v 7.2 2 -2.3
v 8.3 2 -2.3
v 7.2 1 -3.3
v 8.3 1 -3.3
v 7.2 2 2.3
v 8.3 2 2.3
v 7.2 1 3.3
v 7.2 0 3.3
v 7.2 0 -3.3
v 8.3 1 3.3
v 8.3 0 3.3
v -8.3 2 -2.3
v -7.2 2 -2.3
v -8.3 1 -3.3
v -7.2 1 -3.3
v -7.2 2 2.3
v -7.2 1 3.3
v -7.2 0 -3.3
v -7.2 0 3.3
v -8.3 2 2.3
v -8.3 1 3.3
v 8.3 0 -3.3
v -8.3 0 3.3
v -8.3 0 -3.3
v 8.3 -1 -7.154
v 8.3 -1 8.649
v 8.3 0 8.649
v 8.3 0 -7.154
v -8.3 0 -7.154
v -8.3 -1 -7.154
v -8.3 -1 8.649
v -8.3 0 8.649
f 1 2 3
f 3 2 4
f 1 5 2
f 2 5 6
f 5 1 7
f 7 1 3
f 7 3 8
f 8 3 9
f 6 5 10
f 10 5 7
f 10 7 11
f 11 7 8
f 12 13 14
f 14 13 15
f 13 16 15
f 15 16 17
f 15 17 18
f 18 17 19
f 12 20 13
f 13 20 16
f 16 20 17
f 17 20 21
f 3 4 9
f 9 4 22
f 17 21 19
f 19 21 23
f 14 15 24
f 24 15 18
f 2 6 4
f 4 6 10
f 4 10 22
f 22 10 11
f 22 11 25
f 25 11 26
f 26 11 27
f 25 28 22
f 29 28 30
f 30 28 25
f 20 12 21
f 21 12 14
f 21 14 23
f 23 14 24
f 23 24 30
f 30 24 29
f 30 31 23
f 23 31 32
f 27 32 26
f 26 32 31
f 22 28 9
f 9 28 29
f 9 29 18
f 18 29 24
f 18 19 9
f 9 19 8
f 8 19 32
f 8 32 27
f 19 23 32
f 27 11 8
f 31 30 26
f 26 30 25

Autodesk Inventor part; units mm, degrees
ref_plane "YZ Plane" through (0, 0, 0) normal (1, 0, 0) x (0, 1, 0)
ref_plane "XZ Plane" through (0, 0, 0) normal (0, 1, 0) x (-1, 0, 0)
ref_plane "XY Plane" through (0, 0, 0) normal (0, 0, 1) x (1, 0, 0)
sketch "Boceto1" plane through (0, 0, 0) normal (0, 1, 0) x (-1, 0, 0)
  line L0 (-7, 3.5) -> (-8.5, 3.5)
  line L1 (-7, -3.5) -> (-7, 3.5)
  line L2 (-8.5, -3.5) -> (-7, -3.5)
  line L3 (-8.5, -3.5) -> (-8.5, -7.3536)
  line L4 (-8.5, -7.3536) -> (8.5, -7.3536)
  line L5 (8.5, -7.3536) -> (8.5, -3.5)
  line L6 (7, -3.5) -> (8.5, -3.5)
  line L7 (7, 3.5) -> (7, -3.5)
  line L8 (8.5, 3.5) -> (7, 3.5)
  line L9 (8.5, 3.5) -> (8.5, 8.8489)
  line L10 (-8.5, 8.8489) -> (8.5, 8.8489)
  line L11 (-8.5, 8.8489) -> (-8.5, 3.5)
  circle A0 centre (0, 0) radius 5.5
  point P0 (-1.5892, 6.097)
  point P1 (-7, 0)
  dimension "d26" = 16.2026
  dimension "d27" = 17
  dimension "d28" = 5.3489
  dimension "d29" = 7
  dimension "d30" = 11
  dimension "d31" = 8.8489
  dimension "d32" = 8.5
  dimension "d34" = 1.5
  dimension "d35" = 1.5
sketch "Boceto2" plane through (0, 0, 0) normal (0, 1, 0) x (-1, 0, 0)
  line L0 (8.5, 3.5) -> (7, 3.5) construction
  line L1 (7, 3.5) -> (7, -3.5) construction
  line L2 (7, -3.5) -> (8.5, -3.5) construction
  line L3 (-7, 3.5) -> (-8.5, 3.5) construction
  line L4 (-7, -3.5) -> (-7, 3.5) construction
  line L5 (-8.5, -3.5) -> (-7, -3.5) construction
  line L6 (-8.5, -3.5) -> (-8.5, -7.3536) construction
  line L7 (-8.5, 8.8489) -> (-8.5, 3.5) construction
  line L8 (8.5, 3.5) -> (8.5, 8.8489) construction
  line L9 (8.5, -7.3536) -> (8.5, -3.5) construction
  line L10 (7, 3.5) -> (8.5, 3.5) construction
  line L11 (8.5, 3.5) -> (8.5, -3.5) construction
  line L12 (8.5, -3.5) -> (7, -3.5) construction
  line L13 (7, -3.5) -> (7, 3.5) construction
  line L14 (-8.5, 3.5) -> (-7, 3.5) construction
  line L15 (-7, 3.5) -> (-7, -3.5) construction
  line L16 (-7, -3.5) -> (-8.5, -3.5) construction
  line L17 (-8.5, -3.5) -> (-8.5, 3.5) construction
  line L18 (7.2, 3.3) -> (8.3, 3.3)
  line L19 (8.3, 3.3) -> (8.3, -3.3)
  line L20 (8.3, -3.3) -> (7.2, -3.3)
  line L21 (7.2, -3.3) -> (7.2, 3.3)
  line L22 (8.5, 8.8489) -> (-8.5, 8.8489)
  line L23 (-8.5, 8.8489) -> (-8.5, -7.3536)
  line L24 (-8.5, -7.3536) -> (8.5, -7.3536)
  line L25 (8.5, -7.3536) -> (8.5, 8.8489)
  line L26 (0, 0) -> (0, -2.5786) construction
  line L27 (-7.2, 3.3) -> (-8.3, 3.3)
  line L28 (-8.3, 3.3) -> (-8.3, -3.3)
  line L29 (-8.3, -3.3) -> (-7.2, -3.3)
  line L30 (-7.2, -3.3) -> (-7.2, 3.3)
  line L31 (8.3, 8.6489) -> (-8.3, 8.6489)
  line L32 (-8.3, 8.6489) -> (-8.3, -7.1536)
  line L33 (-8.3, -7.1536) -> (8.3, -7.1536)
  line L34 (8.3, -7.1536) -> (8.3, 8.6489)
  dimension "d36" = 0.2
  dimension "d41" = 0.2
extrude "Extrusión1" add sketch "Boceto2" against normal blind 1 contours L21 L20 L34 L33 L32 L29 L30 L27 L31 L18 | L18 L19 L20 L21 | L27 L30 L29 L28
extrude "Extrusión2" add sketch "Boceto2" along normal blind 2 contours L18 L19 L20 L21 | L27 L30 L29 L28
chamfer "Chaflán1" distance 1 angle 45 4 edges at (-7.75, 2, 3.3) (-7.75, 2, -3.3) (7.75, 2, 3.3) (7.75, 2, -3.3)
equation "\"d35\" = d34"
properties part number "tapita"
